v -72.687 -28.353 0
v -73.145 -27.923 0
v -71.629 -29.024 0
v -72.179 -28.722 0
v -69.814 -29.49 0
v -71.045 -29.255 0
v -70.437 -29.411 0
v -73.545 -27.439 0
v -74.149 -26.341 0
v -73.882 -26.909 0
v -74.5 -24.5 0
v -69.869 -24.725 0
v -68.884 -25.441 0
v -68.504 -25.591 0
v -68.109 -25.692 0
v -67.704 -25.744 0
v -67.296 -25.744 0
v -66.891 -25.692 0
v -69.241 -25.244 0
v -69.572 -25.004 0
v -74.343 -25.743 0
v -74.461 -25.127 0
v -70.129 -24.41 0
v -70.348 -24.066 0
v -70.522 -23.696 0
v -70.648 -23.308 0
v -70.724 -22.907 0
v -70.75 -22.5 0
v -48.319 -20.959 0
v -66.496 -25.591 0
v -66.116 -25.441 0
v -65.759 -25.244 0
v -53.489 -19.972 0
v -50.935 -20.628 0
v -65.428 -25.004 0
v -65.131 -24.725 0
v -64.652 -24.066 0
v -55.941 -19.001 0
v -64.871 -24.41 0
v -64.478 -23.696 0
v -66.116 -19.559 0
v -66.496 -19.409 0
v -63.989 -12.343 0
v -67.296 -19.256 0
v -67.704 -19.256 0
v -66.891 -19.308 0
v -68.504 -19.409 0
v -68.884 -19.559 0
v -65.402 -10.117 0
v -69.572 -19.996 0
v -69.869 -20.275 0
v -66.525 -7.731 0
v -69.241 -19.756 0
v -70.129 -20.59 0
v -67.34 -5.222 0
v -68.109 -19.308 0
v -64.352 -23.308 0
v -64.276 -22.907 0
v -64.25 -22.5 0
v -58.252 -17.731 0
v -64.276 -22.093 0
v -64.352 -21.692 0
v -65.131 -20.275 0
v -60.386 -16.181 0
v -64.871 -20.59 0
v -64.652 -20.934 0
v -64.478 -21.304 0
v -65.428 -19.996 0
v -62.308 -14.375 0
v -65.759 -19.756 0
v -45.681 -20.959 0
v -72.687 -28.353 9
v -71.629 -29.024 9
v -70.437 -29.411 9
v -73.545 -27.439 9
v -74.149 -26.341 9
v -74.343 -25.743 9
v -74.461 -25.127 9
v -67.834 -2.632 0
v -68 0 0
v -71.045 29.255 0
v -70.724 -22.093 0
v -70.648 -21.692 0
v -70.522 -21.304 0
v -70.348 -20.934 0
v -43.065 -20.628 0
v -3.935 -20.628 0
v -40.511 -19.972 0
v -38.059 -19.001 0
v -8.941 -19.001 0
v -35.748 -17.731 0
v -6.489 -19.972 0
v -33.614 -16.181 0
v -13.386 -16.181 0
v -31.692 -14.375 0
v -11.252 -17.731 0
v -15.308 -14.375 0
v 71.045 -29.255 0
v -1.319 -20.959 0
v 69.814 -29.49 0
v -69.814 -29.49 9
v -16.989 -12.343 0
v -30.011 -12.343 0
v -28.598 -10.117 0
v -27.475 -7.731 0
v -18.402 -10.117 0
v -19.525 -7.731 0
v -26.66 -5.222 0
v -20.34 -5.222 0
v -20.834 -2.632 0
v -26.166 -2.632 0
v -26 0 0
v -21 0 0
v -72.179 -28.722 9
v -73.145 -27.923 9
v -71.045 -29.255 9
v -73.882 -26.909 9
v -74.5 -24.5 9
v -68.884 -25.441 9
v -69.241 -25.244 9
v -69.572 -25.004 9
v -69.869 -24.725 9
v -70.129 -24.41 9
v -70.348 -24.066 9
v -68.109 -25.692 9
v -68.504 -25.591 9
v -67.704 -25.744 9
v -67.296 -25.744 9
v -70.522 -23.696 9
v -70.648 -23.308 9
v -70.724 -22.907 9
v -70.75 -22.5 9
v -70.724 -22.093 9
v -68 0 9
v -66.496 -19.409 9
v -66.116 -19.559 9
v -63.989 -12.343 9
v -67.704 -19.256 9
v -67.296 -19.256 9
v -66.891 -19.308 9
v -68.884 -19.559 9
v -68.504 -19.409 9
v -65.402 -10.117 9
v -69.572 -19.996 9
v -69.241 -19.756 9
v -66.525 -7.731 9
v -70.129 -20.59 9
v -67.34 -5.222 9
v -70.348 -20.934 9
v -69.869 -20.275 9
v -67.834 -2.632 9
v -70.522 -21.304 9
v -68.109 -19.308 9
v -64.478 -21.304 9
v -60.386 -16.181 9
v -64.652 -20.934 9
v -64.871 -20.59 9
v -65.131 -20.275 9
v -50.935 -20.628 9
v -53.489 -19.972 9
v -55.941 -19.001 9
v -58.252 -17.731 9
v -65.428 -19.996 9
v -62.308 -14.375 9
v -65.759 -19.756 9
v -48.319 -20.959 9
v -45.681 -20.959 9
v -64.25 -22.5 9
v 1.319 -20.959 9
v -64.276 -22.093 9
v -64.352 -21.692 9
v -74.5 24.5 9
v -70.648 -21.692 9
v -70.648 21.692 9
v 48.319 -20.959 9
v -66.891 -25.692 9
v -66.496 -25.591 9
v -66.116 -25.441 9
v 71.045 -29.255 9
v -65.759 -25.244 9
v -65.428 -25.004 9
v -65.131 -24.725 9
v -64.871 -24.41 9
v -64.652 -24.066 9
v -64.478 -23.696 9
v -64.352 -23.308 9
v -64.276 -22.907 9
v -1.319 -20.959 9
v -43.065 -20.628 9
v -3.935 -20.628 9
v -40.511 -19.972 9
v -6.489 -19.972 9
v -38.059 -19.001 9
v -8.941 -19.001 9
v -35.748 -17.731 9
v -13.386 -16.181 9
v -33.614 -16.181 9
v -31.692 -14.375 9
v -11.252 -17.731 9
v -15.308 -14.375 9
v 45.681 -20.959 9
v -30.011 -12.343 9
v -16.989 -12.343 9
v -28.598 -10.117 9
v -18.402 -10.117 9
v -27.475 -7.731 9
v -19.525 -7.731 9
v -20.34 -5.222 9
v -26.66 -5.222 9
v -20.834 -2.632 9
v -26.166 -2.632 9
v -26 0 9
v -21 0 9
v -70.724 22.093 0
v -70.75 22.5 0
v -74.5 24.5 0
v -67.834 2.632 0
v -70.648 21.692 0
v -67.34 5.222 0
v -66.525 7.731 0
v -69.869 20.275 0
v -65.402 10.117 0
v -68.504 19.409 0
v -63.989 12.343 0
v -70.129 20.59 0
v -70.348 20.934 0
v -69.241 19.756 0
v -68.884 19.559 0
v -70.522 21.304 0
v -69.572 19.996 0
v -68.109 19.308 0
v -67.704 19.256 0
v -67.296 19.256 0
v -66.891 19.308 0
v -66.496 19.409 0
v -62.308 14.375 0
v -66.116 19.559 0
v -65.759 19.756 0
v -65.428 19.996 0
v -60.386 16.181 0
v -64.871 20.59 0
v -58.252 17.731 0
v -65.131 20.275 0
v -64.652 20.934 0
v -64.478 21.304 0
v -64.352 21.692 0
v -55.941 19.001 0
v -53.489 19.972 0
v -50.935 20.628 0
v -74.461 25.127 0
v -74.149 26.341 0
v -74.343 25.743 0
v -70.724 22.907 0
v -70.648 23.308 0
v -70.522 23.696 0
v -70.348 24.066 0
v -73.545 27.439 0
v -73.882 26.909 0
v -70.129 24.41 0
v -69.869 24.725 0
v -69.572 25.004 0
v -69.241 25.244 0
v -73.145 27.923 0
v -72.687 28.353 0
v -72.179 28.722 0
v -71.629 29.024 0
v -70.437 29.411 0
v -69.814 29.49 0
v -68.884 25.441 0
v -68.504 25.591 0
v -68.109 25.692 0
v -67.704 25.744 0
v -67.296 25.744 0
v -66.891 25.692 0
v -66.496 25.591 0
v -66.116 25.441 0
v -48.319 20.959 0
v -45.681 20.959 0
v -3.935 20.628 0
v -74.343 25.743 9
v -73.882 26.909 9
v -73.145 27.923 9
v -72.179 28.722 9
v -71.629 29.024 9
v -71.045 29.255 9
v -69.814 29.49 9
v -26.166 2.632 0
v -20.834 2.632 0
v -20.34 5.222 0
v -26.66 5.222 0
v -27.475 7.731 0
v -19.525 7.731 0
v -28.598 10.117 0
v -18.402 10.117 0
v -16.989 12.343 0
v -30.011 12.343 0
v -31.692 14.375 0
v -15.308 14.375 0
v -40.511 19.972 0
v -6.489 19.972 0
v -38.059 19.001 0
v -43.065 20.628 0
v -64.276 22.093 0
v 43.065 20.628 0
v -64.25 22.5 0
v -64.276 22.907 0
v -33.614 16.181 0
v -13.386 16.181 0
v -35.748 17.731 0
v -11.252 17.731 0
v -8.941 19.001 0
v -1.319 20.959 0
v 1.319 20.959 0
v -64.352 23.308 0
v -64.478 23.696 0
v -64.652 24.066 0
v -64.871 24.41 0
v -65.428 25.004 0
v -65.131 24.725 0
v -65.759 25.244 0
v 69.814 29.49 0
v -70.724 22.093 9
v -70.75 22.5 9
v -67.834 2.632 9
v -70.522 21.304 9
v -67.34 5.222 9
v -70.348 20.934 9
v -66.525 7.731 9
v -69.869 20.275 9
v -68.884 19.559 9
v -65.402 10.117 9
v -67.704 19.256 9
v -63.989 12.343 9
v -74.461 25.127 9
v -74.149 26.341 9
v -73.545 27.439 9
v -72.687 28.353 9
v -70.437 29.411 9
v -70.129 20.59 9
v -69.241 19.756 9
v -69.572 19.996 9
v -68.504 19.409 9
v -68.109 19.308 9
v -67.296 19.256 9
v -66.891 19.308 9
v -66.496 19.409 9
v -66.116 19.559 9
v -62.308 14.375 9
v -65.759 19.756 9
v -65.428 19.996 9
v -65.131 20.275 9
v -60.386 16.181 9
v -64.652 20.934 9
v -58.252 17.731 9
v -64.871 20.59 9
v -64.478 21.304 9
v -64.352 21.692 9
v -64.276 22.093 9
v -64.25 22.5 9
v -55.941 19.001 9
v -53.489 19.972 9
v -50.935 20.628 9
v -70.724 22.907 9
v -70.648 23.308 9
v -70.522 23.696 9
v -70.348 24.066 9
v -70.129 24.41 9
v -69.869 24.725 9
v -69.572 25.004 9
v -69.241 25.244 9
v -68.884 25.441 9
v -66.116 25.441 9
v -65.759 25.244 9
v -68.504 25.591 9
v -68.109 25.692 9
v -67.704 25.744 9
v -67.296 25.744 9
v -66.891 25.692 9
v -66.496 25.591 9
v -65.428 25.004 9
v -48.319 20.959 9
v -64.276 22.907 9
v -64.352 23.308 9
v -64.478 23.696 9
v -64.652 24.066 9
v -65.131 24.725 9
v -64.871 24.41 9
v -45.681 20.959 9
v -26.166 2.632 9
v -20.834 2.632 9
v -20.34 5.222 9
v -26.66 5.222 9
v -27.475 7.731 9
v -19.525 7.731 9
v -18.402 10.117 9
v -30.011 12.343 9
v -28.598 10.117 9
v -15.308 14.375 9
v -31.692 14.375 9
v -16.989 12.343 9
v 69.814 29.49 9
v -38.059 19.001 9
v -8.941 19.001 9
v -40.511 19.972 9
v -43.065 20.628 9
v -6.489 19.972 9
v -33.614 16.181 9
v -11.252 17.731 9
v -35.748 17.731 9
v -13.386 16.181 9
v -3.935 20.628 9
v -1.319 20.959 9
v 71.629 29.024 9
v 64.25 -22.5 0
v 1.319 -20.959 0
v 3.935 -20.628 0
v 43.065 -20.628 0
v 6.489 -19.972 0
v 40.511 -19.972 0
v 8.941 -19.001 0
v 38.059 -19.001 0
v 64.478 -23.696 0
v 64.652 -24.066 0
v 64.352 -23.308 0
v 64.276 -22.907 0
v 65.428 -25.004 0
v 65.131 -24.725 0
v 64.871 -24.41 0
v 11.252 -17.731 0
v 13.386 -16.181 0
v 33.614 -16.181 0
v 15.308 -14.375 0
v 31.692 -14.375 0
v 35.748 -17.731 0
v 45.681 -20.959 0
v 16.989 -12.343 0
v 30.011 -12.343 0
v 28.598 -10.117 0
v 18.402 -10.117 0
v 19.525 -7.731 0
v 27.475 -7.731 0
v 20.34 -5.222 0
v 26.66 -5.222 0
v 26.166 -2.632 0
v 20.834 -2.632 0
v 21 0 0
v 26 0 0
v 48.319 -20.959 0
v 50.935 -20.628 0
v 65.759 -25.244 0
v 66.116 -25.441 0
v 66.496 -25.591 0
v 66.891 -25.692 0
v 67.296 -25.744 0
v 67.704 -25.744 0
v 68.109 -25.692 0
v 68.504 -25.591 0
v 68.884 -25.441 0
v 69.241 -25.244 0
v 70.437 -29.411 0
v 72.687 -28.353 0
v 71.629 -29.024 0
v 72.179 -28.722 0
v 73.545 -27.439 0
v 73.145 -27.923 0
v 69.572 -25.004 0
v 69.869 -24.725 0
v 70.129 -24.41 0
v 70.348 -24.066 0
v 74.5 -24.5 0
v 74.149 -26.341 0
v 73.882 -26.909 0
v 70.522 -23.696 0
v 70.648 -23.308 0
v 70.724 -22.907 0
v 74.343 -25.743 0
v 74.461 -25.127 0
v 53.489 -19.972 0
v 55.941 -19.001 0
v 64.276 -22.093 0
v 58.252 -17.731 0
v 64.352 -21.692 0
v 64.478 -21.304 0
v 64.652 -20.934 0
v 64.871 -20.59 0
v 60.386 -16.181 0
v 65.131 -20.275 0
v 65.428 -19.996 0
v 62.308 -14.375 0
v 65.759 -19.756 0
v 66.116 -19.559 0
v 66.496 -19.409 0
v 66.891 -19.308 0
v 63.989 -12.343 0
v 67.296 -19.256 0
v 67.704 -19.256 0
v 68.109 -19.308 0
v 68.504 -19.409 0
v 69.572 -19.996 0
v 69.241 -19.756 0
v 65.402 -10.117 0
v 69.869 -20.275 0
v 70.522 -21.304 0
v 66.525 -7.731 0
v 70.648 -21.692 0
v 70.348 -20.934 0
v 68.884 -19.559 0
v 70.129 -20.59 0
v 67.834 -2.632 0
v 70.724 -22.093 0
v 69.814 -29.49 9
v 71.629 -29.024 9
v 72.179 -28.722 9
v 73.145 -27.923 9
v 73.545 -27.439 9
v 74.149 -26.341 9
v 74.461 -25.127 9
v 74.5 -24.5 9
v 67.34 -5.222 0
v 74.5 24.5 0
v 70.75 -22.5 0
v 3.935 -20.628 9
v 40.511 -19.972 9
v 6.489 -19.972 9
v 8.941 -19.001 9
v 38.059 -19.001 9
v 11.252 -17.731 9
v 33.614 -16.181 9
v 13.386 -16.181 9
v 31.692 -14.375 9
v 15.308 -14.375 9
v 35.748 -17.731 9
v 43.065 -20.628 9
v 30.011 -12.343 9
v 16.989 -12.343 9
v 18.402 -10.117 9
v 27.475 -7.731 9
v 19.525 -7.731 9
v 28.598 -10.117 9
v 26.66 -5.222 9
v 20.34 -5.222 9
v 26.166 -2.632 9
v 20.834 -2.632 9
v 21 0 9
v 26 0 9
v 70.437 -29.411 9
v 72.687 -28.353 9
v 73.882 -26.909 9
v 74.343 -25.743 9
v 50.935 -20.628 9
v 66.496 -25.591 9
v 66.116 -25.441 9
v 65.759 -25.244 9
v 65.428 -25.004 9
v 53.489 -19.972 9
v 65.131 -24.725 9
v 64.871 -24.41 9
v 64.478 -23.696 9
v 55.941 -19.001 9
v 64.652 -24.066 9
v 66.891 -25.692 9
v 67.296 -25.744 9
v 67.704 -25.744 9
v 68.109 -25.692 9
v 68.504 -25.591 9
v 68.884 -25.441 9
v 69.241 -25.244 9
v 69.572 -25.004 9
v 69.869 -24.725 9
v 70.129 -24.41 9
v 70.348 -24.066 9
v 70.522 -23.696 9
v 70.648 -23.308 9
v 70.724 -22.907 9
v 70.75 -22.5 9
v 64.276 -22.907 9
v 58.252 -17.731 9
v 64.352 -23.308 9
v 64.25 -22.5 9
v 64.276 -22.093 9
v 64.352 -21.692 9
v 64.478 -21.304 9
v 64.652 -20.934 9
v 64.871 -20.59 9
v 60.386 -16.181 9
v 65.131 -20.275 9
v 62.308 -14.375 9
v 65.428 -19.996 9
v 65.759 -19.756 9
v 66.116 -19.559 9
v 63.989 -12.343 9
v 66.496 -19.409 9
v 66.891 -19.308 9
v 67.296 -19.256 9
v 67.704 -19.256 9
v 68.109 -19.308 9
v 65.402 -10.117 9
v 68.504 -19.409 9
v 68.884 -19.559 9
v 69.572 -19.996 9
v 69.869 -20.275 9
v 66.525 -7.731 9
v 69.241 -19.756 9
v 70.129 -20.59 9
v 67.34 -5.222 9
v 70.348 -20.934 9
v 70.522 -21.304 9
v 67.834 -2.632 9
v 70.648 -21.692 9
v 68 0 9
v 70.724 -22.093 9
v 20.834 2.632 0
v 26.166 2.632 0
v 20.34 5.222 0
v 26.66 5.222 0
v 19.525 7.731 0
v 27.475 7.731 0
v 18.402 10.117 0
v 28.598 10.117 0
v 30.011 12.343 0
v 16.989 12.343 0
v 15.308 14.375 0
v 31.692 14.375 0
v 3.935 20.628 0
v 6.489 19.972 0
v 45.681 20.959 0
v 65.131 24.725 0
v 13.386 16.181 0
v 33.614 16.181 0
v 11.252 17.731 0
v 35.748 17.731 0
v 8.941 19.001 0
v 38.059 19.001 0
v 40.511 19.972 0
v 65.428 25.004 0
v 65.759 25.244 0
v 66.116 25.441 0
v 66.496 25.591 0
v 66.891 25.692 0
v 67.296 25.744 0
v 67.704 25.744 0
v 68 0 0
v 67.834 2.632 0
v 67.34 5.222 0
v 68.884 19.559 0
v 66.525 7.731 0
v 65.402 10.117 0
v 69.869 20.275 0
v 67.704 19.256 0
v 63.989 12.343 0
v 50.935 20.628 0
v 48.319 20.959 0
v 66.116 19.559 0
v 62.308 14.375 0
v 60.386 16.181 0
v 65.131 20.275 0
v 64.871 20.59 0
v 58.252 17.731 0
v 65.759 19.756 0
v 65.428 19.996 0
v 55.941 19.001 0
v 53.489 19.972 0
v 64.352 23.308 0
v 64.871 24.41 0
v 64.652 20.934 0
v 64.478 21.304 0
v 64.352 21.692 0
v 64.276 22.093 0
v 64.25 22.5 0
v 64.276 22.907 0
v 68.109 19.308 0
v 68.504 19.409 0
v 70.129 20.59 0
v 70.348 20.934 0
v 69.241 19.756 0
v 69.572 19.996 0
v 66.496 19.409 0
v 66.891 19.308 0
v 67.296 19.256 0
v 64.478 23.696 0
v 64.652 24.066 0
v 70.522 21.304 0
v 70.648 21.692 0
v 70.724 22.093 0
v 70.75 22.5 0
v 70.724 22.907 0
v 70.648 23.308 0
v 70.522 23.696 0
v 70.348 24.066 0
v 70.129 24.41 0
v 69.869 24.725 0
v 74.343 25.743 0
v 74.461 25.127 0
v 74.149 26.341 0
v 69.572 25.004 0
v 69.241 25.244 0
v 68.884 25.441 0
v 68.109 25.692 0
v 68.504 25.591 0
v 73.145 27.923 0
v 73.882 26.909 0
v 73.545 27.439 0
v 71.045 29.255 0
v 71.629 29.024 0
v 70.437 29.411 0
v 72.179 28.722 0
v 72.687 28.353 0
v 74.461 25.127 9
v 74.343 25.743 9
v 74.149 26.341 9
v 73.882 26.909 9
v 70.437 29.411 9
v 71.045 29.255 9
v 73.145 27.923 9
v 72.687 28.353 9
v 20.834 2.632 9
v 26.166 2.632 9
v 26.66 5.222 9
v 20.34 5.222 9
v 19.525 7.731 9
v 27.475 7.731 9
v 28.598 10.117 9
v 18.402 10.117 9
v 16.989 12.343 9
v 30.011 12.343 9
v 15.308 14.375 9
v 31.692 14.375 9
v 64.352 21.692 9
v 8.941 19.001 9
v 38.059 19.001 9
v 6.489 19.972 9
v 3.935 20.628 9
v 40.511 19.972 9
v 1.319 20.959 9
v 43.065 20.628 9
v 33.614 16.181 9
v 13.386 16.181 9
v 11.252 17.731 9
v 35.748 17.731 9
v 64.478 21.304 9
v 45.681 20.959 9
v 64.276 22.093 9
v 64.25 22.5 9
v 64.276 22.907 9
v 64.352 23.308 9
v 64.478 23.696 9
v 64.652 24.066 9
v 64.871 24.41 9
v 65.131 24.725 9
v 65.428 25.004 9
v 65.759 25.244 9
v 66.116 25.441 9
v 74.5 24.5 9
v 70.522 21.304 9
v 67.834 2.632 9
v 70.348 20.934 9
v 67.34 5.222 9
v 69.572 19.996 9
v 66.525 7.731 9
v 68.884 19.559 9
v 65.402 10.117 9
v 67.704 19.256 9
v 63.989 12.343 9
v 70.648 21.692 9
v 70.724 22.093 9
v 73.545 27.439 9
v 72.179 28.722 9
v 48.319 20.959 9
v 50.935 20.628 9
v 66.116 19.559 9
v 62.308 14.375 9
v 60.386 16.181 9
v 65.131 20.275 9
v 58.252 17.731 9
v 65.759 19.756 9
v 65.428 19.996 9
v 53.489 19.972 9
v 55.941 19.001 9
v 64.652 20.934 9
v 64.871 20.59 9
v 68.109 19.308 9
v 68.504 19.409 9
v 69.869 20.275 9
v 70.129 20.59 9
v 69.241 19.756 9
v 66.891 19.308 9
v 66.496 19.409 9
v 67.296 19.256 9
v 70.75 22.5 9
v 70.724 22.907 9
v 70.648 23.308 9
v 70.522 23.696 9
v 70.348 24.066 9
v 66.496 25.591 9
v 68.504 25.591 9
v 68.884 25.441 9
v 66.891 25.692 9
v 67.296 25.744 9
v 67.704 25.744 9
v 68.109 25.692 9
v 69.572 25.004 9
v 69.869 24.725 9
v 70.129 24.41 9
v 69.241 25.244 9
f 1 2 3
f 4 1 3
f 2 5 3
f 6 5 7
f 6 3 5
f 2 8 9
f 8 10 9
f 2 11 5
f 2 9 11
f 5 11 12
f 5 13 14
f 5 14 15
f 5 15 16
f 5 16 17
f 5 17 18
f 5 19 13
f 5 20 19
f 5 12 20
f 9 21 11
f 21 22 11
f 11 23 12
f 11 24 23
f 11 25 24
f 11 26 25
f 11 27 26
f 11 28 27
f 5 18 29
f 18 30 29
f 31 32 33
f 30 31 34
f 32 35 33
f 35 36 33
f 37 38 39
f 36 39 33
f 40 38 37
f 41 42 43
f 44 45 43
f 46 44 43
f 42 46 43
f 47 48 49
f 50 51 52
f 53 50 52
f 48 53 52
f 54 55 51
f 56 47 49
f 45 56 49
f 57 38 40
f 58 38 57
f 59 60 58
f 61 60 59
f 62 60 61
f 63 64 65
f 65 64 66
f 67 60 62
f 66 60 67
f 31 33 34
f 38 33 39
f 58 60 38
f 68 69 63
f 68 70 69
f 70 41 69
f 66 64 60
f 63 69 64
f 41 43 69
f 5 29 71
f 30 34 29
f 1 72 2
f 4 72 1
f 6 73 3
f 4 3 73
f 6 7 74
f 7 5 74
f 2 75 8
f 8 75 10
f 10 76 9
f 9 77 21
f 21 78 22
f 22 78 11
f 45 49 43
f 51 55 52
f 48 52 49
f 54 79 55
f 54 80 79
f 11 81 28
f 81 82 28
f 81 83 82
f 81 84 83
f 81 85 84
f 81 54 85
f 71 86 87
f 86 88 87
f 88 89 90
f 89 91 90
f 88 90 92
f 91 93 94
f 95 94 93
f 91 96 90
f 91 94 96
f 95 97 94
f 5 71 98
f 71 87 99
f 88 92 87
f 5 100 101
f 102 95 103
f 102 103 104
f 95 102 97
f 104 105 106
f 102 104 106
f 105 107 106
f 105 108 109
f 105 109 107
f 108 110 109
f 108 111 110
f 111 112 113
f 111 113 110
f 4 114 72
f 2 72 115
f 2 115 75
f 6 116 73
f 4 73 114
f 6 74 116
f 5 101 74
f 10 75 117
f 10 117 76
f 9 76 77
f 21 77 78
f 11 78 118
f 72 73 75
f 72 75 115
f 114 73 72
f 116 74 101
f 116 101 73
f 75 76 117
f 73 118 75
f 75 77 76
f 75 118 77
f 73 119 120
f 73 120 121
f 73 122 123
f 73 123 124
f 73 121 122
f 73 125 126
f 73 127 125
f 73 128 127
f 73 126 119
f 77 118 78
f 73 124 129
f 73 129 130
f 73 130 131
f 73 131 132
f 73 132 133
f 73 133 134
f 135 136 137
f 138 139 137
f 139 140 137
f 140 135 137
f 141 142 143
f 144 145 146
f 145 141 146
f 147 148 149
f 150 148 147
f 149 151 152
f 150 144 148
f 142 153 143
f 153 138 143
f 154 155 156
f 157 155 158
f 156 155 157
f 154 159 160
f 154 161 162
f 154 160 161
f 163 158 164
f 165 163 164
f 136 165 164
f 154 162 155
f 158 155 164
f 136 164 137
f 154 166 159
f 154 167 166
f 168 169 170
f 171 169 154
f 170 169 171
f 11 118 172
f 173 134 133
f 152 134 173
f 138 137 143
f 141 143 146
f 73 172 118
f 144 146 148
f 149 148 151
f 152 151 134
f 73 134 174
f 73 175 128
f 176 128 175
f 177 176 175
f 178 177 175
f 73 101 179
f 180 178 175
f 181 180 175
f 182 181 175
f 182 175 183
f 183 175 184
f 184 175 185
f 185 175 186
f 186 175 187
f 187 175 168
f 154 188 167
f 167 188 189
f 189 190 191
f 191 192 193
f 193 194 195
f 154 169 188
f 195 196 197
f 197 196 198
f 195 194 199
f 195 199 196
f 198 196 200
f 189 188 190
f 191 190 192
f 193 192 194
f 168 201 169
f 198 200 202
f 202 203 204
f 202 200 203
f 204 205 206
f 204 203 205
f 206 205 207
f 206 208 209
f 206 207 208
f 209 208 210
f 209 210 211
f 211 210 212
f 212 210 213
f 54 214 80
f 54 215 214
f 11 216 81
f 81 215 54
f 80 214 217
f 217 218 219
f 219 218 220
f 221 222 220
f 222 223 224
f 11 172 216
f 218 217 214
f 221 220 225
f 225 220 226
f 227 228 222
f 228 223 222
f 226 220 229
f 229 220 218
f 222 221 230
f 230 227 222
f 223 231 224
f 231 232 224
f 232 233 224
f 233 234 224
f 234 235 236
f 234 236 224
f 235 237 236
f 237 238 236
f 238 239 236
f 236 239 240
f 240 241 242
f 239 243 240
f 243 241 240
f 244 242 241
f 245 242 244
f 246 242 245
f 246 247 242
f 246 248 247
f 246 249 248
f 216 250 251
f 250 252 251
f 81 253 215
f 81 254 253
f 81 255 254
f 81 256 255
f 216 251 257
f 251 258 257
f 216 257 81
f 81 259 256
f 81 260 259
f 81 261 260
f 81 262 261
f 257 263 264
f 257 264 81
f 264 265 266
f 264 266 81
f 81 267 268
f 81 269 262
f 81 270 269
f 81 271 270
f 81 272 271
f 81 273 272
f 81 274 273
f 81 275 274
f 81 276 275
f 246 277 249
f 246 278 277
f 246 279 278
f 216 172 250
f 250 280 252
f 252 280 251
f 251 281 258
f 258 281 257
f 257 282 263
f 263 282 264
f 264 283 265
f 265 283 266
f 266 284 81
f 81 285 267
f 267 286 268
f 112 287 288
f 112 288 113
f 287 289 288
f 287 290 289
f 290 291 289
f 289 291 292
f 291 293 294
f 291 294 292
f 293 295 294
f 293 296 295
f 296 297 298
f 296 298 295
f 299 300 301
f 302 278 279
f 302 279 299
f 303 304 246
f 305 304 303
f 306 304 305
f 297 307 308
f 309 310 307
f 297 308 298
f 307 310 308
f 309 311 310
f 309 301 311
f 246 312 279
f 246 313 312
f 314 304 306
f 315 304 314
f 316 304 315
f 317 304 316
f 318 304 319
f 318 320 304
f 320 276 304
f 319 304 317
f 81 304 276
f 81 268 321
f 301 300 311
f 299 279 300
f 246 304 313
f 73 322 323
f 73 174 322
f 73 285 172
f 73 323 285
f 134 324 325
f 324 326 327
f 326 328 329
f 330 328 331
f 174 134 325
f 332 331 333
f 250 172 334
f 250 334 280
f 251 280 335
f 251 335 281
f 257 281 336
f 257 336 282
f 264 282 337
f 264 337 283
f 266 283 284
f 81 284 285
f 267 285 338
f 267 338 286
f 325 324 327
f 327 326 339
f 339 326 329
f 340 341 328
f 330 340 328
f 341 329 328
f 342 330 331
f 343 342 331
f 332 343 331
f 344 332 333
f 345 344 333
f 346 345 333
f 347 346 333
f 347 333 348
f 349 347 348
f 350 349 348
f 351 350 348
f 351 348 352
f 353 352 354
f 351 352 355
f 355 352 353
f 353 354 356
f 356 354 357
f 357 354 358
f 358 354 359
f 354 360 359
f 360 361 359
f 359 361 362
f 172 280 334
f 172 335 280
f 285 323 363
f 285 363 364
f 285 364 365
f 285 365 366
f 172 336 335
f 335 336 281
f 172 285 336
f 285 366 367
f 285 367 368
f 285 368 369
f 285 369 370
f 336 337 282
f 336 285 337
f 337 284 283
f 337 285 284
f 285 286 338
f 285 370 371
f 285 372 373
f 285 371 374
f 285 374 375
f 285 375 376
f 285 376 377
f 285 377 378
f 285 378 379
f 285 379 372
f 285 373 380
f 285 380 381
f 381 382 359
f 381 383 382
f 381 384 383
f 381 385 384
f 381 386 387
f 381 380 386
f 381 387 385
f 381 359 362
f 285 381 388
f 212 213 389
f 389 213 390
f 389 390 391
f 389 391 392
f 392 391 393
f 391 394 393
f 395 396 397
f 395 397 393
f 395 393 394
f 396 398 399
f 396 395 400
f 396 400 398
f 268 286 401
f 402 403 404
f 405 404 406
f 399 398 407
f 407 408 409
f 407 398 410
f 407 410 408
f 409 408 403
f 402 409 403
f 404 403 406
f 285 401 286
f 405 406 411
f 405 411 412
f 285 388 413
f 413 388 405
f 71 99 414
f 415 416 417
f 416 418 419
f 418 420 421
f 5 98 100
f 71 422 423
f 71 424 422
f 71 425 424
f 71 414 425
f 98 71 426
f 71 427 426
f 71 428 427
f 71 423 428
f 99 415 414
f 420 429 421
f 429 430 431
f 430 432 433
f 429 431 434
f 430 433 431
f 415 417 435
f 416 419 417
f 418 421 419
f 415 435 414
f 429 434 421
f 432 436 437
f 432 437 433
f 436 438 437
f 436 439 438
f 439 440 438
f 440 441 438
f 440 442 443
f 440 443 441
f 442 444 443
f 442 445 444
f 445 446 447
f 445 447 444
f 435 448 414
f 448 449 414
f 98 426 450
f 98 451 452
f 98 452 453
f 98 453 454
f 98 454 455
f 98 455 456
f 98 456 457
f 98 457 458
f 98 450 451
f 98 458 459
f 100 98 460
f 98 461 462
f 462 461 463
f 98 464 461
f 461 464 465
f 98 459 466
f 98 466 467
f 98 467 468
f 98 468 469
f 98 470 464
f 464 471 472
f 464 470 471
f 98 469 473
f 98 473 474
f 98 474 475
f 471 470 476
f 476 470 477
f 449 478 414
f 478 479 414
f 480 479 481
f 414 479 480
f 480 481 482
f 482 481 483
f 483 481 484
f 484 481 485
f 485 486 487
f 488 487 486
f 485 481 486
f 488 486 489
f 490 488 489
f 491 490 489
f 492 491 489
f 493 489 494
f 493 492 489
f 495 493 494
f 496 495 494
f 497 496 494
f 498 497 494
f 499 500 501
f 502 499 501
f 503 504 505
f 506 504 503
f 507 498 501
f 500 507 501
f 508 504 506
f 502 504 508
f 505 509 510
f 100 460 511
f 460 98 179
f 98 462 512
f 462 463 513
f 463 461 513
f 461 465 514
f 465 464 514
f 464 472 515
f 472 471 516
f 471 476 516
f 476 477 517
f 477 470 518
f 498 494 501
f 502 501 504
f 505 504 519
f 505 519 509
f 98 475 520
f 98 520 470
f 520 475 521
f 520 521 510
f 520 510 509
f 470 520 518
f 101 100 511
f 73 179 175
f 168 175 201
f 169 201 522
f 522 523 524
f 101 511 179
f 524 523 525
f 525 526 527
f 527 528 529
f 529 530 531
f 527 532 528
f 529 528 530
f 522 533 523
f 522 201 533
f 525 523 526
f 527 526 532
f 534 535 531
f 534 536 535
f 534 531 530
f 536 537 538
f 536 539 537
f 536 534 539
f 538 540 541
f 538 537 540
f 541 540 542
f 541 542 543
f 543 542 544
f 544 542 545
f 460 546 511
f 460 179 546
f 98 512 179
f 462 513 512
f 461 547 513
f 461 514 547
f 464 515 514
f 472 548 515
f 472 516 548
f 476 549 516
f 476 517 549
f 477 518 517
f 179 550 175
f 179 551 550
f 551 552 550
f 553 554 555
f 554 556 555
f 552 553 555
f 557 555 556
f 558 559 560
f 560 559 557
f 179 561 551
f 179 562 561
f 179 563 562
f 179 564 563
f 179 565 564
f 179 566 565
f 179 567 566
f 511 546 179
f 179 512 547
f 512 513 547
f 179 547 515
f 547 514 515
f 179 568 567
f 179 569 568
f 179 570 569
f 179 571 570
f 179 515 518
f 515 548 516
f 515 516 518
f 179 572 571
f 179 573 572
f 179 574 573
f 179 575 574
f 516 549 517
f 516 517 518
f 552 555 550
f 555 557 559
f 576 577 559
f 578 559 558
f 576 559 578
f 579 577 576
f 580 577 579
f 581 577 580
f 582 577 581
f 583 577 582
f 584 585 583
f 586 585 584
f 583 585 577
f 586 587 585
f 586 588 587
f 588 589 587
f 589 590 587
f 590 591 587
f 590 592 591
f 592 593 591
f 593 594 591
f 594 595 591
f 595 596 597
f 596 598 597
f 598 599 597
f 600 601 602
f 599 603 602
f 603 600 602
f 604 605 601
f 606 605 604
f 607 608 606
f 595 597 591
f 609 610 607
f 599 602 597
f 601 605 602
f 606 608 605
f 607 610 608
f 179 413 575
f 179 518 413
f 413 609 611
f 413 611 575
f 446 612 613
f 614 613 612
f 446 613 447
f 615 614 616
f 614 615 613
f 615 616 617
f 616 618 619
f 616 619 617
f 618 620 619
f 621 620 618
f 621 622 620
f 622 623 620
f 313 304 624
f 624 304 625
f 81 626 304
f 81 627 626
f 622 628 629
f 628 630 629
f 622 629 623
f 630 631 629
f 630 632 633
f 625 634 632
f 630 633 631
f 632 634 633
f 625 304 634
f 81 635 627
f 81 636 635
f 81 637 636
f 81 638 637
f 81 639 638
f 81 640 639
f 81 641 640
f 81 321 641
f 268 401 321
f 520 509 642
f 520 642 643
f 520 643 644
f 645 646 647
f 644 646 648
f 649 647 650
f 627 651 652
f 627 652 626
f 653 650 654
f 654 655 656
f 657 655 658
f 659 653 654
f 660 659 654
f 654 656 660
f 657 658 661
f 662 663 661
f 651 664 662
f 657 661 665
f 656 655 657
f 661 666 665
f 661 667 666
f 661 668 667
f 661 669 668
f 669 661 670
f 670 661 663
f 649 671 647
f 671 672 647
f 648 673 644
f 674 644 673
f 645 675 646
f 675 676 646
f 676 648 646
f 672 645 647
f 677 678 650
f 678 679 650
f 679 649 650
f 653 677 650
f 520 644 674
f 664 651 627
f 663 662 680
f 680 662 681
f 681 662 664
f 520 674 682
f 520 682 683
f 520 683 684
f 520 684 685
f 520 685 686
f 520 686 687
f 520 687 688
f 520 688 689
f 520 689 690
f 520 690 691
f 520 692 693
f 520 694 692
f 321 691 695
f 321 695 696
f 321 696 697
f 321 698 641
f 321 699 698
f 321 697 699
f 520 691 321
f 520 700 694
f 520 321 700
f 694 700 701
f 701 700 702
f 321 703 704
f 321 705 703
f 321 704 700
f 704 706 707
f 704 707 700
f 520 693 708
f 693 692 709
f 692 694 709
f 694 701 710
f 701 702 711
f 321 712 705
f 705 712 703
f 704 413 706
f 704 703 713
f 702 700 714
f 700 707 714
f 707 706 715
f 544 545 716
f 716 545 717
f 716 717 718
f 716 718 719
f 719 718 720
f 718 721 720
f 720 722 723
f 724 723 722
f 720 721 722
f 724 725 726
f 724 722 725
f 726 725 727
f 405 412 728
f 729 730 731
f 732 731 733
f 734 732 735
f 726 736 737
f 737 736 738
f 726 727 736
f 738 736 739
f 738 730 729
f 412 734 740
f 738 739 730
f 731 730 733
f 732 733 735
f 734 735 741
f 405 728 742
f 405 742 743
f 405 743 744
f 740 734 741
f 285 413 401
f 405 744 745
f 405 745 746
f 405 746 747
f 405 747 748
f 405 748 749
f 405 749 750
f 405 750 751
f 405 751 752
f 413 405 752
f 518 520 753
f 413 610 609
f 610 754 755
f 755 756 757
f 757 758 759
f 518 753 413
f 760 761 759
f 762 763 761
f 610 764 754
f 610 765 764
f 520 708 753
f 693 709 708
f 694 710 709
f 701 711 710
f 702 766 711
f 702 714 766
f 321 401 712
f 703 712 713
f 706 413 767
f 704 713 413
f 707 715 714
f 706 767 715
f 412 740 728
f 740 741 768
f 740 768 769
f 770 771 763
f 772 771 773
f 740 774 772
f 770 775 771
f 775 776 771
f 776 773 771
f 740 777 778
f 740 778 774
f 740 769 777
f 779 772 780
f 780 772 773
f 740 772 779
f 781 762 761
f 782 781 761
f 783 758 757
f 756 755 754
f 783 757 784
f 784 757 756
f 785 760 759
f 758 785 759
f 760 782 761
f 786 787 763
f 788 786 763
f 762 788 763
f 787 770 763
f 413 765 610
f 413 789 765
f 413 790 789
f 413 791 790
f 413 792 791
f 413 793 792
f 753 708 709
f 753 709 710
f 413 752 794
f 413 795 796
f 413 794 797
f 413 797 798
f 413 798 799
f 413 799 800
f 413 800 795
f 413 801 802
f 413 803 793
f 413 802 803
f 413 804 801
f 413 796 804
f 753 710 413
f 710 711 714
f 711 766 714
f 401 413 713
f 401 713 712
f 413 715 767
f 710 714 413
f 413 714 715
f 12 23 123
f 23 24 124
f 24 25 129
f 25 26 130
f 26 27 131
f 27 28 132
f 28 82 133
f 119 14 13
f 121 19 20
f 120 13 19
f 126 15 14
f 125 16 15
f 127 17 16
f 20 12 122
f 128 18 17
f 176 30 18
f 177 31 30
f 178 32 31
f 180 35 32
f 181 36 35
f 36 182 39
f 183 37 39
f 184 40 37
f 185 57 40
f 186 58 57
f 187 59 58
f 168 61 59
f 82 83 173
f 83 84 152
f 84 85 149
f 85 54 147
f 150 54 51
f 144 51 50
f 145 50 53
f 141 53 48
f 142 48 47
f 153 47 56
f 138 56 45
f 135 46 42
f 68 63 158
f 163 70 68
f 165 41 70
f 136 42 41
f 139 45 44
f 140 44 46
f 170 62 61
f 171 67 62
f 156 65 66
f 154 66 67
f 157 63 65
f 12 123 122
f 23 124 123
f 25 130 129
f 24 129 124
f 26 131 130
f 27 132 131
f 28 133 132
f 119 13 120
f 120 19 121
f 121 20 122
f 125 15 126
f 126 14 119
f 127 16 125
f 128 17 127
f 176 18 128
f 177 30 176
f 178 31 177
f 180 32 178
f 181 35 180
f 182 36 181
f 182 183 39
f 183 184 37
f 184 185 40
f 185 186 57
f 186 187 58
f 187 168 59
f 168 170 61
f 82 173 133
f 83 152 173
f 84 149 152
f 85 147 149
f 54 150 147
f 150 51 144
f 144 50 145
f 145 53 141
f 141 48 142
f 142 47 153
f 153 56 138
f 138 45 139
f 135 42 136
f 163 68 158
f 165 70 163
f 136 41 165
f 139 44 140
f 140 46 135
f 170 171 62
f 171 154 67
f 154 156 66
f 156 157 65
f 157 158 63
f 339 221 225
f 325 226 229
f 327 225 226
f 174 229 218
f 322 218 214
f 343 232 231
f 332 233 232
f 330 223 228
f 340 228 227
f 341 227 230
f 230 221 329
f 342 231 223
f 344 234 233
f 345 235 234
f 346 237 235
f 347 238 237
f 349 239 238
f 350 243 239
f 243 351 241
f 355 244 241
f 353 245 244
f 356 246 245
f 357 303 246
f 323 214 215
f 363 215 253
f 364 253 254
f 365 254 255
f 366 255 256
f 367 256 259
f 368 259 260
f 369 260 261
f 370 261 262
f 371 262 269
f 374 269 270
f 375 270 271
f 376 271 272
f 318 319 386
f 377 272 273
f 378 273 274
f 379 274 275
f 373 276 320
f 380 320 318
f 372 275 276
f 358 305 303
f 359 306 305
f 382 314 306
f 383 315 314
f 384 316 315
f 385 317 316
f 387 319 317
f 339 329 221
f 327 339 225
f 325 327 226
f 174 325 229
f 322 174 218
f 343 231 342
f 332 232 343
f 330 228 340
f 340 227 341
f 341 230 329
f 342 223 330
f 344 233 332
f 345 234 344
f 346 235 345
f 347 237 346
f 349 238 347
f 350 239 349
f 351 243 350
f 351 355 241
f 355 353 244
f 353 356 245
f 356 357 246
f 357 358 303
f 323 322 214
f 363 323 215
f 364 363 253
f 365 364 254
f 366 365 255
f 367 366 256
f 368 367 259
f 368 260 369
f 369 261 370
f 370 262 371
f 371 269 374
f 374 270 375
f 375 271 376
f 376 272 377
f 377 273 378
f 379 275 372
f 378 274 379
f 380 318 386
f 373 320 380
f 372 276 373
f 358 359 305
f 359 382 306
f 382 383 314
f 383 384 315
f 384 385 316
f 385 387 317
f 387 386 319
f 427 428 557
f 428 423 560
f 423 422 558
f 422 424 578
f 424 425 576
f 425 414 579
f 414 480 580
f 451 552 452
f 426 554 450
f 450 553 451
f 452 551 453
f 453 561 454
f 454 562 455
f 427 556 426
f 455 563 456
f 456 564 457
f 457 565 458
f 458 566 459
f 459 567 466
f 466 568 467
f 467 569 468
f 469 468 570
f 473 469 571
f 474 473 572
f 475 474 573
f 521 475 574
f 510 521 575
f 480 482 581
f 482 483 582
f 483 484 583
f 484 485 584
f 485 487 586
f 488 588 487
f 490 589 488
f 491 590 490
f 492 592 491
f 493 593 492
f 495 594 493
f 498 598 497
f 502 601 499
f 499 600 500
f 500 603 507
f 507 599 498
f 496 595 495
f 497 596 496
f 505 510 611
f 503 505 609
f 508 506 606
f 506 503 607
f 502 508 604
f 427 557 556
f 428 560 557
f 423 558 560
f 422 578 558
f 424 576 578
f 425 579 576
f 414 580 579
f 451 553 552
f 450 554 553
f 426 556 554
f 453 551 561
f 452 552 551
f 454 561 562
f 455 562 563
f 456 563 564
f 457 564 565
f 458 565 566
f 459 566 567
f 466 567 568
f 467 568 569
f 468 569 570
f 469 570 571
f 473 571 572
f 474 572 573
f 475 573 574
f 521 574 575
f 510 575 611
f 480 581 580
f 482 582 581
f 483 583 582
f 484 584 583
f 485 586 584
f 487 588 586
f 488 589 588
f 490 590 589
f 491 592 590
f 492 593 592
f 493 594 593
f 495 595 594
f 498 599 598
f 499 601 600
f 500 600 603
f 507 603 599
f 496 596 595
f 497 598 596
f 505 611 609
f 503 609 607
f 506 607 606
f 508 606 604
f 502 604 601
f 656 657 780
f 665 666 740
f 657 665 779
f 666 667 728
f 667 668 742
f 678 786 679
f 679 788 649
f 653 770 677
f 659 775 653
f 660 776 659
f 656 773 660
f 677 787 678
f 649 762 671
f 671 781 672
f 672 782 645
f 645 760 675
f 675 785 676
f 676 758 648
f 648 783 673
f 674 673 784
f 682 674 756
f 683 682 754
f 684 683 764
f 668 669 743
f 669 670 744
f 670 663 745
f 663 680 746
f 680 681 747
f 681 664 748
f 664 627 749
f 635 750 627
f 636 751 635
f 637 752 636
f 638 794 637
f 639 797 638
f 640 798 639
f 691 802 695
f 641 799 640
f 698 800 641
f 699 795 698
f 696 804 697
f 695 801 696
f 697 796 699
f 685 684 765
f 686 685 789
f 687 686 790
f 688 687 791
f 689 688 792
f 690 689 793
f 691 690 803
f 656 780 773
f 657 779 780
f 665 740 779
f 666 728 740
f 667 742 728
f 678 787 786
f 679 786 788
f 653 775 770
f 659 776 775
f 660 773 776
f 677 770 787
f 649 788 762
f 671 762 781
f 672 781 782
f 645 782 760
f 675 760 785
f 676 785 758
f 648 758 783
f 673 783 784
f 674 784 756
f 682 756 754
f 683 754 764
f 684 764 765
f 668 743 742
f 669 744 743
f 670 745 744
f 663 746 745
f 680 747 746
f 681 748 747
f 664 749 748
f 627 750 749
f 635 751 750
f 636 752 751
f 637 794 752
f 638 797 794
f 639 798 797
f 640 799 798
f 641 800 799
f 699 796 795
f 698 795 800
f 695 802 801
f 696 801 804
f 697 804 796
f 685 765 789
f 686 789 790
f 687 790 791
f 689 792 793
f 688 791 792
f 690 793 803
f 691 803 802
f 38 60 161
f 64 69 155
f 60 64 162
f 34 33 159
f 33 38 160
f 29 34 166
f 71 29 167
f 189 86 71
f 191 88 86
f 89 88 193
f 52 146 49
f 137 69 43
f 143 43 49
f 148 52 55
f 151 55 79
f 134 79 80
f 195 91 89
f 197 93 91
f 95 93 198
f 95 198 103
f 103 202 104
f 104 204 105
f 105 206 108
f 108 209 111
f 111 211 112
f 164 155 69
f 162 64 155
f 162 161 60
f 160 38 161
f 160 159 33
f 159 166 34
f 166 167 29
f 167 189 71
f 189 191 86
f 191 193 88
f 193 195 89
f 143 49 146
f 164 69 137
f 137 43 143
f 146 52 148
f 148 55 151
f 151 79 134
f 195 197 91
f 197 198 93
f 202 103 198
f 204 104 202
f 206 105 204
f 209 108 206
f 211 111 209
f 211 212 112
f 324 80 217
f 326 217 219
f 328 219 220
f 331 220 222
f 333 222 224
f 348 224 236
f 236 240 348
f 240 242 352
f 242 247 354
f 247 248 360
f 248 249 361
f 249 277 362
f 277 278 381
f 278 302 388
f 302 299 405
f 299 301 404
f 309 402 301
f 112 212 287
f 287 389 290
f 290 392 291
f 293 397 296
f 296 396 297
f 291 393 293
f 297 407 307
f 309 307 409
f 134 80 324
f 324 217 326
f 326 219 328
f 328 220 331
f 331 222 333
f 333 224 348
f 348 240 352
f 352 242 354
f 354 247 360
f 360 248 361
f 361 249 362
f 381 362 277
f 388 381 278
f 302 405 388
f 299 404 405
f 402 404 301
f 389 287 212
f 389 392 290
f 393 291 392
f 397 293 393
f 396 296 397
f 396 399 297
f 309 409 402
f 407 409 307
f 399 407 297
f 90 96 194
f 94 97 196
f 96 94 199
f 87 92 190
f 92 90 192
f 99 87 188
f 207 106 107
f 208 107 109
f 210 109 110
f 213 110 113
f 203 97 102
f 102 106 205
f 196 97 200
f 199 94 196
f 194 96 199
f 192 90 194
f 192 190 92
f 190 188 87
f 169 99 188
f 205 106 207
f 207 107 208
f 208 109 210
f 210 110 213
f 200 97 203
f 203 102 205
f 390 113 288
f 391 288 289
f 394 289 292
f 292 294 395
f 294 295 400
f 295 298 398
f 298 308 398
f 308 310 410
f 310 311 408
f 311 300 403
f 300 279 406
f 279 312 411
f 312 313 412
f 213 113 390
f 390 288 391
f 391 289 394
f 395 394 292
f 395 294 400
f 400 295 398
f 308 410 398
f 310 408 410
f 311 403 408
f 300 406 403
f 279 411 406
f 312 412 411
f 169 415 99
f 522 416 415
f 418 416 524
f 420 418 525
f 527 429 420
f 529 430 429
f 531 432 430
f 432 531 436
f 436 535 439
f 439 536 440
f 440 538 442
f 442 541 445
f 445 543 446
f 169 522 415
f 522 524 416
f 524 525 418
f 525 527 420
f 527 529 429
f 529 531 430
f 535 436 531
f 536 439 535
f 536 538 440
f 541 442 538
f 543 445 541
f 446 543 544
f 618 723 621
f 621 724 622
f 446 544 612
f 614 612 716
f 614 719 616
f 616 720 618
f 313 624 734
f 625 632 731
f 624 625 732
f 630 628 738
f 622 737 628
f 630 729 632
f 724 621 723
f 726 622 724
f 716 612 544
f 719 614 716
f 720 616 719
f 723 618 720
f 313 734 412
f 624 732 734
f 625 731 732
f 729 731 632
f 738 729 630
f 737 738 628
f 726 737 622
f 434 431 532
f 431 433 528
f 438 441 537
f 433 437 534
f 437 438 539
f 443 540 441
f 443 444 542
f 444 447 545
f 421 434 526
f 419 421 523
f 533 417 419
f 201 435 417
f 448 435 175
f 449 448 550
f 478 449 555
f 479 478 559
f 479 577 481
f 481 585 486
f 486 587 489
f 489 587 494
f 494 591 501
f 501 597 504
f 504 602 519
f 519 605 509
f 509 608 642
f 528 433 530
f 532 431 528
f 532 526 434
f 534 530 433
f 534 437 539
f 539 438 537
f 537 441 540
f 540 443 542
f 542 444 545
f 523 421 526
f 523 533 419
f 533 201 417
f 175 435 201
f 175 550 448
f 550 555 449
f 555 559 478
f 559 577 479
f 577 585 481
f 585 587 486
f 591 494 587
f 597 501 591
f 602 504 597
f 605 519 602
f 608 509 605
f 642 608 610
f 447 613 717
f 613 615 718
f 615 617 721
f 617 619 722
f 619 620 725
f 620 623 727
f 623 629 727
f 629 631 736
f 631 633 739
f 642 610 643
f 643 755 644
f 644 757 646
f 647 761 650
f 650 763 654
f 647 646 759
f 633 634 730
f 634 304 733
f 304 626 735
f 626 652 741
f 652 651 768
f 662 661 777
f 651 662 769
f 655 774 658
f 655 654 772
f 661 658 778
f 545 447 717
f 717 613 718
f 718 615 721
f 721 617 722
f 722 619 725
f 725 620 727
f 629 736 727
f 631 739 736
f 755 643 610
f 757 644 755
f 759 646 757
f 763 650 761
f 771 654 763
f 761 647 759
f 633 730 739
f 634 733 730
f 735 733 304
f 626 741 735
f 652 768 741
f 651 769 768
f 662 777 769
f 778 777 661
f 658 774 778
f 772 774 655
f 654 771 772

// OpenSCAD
$fn = 50;

difference() {
	union() {
		hull() {
			translate(v = [-69.5, 24.5, 0]) {
				cylinder(h = 9, r = 5);
			}
			translate(v = [69.5, 24.5, 0]) {
				cylinder(h = 9, r = 5);
			}
			translate(v = [-69.5, -24.5, 0]) {
				cylinder(h = 9, r = 5);
			}
			translate(v = [69.5, -24.5, 0]) {
				cylinder(h = 9, r = 5);
			}
		}
	}
	union() {
		translate(v = [-67.5, -22.5, -100.0]) {
			cylinder(h = 200, r = 3.25);
		}
		translate(v = [-67.5, 22.5, -100.0]) {
			cylinder(h = 200, r = 3.25);
		}
		translate(v = [67.5, -22.5, -100.0]) {
			cylinder(h = 200, r = 3.25);
		}
		translate(v = [67.5, 22.5, -100.0]) {
			cylinder(h = 200, r = 3.25);
		}
		translate(v = [-67.5, -22.5, -100.0]) {
			cylinder(h = 200, r = 1.8);
		}
		translate(v = [-67.5, 22.5, -100.0]) {
			cylinder(h = 200, r = 1.8);
		}
		translate(v = [67.5, -22.5, -100.0]) {
			cylinder(h = 200, r = 1.8);
		}
		translate(v = [67.5, 22.5, -100.0]) {
			cylinder(h = 200, r = 1.8);
		}
		translate(v = [-47.0, 0, 0.0]) {
			cylinder(h = 9, r = 21.0);
		}
		cylinder(h = 9, r = 21.0);
		translate(v = [47.0, 0, 0.0]) {
			cylinder(h = 9, r = 21.0);
		}
	}
}
